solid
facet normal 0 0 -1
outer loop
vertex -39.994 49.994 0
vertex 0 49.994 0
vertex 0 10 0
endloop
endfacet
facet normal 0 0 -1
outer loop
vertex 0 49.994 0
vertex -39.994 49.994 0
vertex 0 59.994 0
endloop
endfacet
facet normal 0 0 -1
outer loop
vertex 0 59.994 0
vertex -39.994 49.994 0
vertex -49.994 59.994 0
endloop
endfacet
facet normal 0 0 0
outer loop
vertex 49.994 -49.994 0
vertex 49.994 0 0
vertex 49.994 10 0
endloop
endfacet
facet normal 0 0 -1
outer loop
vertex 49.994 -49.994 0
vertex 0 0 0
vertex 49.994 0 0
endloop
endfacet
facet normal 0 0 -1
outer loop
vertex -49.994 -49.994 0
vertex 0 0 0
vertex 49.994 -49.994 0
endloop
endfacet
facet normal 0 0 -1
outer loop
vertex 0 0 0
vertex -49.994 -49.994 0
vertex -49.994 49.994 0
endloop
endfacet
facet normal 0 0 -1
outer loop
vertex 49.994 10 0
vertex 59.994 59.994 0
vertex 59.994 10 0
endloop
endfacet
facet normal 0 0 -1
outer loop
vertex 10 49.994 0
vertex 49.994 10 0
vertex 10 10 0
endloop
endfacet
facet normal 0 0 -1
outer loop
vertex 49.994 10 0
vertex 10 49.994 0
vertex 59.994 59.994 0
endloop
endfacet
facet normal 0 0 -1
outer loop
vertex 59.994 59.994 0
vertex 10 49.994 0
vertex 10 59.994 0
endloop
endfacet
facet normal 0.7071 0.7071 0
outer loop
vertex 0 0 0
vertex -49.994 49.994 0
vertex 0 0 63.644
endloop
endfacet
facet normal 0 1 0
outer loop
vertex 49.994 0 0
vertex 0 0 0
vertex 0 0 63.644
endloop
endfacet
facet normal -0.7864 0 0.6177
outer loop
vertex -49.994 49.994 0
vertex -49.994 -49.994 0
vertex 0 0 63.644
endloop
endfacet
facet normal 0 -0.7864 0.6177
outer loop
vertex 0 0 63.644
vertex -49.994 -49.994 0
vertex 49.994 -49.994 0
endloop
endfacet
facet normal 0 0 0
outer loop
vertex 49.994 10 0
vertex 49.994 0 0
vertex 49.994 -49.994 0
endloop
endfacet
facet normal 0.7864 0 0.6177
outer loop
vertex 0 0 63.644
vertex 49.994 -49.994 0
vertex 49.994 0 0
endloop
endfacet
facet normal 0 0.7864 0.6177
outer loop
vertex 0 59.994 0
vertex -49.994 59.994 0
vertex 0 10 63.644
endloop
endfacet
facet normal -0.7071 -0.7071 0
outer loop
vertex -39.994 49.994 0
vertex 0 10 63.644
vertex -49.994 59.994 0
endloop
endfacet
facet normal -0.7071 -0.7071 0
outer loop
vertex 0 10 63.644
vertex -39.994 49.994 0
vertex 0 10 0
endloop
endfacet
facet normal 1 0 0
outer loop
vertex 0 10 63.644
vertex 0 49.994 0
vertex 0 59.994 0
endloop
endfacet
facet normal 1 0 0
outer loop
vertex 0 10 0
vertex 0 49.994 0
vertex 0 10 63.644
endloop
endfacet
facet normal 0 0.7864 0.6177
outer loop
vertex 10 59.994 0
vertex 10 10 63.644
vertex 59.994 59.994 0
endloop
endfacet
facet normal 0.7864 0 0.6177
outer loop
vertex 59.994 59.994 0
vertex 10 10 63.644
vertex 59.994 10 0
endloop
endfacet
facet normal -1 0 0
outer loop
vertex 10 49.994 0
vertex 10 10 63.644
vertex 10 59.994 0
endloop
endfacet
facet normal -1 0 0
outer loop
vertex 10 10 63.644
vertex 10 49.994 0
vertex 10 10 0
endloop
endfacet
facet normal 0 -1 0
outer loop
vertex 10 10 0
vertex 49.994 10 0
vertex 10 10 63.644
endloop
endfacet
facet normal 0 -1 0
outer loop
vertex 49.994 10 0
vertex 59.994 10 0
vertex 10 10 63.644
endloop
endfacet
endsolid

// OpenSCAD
$fa = 1;
$fs = 0.4;

// lets make it the same layout as the Cheops pyramid
base_cheops=230.3;
height_cheops=146.59;

// scaling factor
factor=2303.3;

// just so we know the actual value - mm/m
mmpm = 1000;

// lets calculate our values in mm
base_mm=base_cheops/factor * mmpm;
height_mm=height_cheops/factor * mmpm;

// we'd like to print with a gap
gap_mm=10;

module pyramid(base_length, height) {
    rotate([0,0,45])
        cylinder(h=height,r1=base_length/2*sqrt(2),r2=0,$fn=4);
}

module slice(base_length, height) {
    epsilon=.1;
    linear_extrude(height = height + 2*epsilon)
        translate([0,0,-epsilon])
            polygon([[0,0],[0,base_length],[-base_length,base_length]]);
}

module quarter(base_length, height) {
    epsilon=.1;
    linear_extrude(height = height + 2*epsilon)
        translate([0,0,-epsilon])
            polygon([[0,0],[0,base_length],[base_length,base_length],[base_length,0]]);
}


// pyramid with quarter and slice removed
difference() {
    pyramid(base_mm, height_mm);
    union() {
        slice(base_mm/2, height_mm);
        quarter(base_mm/2, height_mm);
    };
};

// slice, separated by gap
translate([0,gap_mm,0])
intersection() {
    pyramid(base_mm, height_mm);
    slice(base_mm/2, height_mm);
};

// qarter, separated by gap
translate([gap_mm,gap_mm,0])
intersection() {
    pyramid(base_mm, height_mm);
    quarter(base_mm/2, height_mm);
};
